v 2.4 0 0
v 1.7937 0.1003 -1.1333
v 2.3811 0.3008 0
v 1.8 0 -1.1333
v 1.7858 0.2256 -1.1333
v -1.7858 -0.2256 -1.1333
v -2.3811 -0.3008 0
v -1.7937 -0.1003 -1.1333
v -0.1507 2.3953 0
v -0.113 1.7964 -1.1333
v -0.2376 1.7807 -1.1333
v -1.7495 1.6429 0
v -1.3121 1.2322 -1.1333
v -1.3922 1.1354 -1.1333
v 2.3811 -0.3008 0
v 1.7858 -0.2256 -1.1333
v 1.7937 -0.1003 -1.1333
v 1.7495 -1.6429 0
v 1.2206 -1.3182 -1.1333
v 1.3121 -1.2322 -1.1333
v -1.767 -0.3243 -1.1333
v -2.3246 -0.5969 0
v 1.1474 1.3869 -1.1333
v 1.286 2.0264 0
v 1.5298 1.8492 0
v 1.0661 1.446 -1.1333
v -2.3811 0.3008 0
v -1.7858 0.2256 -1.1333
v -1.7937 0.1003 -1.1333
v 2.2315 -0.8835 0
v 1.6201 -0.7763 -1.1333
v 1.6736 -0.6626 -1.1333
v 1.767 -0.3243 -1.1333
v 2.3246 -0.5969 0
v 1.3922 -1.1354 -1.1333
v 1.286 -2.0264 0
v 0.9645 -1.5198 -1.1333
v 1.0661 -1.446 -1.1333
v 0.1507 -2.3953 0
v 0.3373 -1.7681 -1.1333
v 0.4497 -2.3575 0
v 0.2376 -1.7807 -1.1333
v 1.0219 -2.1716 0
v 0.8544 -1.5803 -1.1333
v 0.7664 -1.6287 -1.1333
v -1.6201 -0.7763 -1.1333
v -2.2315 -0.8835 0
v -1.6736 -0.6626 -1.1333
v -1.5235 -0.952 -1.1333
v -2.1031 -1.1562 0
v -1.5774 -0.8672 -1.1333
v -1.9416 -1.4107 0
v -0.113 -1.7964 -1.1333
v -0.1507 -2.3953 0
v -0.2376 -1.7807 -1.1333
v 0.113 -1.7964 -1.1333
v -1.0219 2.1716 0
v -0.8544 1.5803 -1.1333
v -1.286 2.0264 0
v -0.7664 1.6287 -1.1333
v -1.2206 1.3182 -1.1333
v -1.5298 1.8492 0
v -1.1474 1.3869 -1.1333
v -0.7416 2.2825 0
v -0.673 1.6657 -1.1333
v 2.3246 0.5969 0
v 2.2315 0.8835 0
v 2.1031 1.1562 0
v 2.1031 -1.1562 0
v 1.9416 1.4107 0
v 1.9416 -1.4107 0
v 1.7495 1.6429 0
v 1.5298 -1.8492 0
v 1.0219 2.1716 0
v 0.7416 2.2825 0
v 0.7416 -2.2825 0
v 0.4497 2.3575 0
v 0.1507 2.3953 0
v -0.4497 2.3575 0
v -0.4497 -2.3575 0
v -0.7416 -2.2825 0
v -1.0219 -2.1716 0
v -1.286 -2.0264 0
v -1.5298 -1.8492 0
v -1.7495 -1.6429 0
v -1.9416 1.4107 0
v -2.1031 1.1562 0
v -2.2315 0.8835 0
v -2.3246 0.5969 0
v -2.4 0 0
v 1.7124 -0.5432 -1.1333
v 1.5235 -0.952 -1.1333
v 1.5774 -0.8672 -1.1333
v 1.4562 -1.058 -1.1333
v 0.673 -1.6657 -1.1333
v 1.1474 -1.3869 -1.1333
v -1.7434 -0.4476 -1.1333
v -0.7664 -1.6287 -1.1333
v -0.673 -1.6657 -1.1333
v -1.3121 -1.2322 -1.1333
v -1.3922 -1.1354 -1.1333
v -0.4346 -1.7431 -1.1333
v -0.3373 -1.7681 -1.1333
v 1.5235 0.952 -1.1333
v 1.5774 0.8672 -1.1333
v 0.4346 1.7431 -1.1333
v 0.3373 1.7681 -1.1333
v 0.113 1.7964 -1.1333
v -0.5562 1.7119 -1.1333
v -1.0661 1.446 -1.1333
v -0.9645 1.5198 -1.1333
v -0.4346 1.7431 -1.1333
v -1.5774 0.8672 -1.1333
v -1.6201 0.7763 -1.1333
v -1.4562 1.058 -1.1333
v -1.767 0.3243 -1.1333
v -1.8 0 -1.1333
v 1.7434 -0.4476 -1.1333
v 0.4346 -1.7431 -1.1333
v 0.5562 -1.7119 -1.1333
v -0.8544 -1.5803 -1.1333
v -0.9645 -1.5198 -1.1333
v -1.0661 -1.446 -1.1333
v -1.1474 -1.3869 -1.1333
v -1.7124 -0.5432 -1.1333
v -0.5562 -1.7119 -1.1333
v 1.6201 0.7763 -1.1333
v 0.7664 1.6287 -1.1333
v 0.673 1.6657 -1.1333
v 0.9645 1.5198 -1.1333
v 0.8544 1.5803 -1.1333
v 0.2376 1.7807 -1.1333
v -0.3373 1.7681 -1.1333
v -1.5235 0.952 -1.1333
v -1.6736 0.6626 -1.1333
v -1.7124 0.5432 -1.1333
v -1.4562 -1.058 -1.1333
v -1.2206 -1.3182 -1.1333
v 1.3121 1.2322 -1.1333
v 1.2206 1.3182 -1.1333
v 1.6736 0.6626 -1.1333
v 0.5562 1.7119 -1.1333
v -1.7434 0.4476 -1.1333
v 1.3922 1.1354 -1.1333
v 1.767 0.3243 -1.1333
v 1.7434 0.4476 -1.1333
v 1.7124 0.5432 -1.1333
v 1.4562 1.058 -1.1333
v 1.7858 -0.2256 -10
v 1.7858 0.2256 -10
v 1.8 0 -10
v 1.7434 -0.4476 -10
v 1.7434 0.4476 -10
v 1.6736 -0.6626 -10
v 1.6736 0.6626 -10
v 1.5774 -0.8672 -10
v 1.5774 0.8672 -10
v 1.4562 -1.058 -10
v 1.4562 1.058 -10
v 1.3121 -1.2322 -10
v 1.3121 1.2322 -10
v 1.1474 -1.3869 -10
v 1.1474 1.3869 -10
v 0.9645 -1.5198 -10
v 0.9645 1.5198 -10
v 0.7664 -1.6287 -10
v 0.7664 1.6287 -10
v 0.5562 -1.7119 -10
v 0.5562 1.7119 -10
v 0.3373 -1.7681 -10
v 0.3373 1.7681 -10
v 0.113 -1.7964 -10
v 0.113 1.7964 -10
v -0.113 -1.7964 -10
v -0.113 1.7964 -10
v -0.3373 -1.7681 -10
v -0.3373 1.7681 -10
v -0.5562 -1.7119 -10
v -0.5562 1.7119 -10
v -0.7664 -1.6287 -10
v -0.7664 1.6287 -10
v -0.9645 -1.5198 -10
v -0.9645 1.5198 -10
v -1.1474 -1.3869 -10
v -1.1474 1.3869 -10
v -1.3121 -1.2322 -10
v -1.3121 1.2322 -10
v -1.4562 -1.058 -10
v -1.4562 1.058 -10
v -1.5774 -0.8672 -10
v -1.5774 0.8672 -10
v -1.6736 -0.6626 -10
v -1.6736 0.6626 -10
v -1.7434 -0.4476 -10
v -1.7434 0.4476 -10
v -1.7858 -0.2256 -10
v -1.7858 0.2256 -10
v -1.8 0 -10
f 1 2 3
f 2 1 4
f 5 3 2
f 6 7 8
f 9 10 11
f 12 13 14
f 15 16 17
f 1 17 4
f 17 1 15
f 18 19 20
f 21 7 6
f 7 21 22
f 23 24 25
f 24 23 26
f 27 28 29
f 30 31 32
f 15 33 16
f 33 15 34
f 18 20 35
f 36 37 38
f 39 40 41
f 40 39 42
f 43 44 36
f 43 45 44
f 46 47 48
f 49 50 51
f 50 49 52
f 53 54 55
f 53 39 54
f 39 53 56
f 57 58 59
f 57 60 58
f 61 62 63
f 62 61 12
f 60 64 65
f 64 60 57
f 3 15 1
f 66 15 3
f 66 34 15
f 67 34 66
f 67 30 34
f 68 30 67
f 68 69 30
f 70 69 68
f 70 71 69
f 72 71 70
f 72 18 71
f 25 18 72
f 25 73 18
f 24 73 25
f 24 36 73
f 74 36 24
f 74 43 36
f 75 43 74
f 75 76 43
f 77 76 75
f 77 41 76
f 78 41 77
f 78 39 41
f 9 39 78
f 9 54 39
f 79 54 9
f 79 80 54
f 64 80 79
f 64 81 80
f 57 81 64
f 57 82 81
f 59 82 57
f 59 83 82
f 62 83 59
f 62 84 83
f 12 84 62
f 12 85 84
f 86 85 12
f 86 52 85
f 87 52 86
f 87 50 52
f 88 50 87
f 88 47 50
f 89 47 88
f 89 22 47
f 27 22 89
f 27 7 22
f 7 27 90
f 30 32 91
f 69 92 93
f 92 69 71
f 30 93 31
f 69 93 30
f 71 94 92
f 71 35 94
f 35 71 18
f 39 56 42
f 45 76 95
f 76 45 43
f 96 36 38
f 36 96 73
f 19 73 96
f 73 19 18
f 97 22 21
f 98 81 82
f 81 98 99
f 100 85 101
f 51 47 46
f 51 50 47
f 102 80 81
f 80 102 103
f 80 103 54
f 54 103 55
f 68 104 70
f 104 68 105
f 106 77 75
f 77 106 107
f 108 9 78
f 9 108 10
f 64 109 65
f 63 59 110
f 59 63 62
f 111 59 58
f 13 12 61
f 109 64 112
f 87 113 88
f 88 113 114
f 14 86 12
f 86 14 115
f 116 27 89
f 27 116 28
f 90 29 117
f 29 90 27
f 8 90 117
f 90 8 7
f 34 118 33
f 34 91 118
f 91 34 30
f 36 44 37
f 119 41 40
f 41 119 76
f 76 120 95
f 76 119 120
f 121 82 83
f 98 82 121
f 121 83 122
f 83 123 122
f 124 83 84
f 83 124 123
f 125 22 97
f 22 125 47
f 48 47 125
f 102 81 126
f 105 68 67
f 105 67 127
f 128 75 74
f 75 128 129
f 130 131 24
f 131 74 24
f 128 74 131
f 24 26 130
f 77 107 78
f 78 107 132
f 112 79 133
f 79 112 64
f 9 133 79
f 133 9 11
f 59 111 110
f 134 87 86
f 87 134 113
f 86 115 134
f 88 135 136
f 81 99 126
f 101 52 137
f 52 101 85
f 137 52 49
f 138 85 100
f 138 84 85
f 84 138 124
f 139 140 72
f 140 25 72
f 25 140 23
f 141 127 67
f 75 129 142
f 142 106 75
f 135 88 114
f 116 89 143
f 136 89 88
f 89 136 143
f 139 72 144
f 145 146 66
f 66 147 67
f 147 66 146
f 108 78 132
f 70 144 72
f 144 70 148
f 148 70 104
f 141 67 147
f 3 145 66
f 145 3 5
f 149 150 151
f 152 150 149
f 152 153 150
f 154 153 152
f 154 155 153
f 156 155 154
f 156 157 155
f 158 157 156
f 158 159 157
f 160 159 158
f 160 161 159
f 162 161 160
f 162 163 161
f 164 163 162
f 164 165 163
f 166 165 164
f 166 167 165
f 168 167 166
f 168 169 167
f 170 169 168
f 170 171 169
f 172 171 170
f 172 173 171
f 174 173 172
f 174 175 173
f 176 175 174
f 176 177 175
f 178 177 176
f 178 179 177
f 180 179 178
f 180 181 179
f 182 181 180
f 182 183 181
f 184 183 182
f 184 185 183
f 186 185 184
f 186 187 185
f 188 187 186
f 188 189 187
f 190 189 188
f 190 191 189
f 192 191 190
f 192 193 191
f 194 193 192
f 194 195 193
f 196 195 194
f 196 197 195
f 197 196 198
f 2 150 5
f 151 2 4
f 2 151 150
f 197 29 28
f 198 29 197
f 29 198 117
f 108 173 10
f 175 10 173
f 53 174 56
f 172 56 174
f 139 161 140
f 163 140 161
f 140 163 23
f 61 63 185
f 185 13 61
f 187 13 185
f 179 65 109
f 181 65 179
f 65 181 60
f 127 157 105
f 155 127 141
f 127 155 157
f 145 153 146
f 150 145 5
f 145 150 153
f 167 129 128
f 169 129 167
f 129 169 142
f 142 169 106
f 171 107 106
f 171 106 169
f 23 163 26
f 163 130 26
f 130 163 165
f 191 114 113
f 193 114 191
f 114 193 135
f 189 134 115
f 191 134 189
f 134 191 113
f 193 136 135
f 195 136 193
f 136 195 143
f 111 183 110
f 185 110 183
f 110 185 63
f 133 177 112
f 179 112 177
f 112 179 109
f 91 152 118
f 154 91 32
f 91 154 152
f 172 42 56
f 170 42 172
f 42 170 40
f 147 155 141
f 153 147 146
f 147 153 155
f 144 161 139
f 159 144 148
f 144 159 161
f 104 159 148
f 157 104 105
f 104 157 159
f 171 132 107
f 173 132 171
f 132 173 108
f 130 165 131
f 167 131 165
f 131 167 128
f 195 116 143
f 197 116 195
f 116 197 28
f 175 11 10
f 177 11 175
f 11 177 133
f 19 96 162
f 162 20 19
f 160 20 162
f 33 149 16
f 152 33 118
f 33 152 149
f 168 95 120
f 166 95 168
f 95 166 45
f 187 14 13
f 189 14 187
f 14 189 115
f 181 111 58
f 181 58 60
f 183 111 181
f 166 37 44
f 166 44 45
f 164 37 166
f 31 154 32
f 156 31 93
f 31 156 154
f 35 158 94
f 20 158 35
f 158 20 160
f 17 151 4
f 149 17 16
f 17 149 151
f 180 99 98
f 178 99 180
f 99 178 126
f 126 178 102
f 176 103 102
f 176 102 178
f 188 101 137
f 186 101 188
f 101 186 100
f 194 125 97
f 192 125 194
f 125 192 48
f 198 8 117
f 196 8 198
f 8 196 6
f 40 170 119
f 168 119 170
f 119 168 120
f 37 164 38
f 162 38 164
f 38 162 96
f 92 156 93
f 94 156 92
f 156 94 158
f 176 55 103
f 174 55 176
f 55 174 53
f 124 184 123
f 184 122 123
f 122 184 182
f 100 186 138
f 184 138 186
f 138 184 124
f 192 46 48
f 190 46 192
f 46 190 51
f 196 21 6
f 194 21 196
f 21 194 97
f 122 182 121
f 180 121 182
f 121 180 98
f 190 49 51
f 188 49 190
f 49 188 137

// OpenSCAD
$fn = 50;


difference() {
	union() {
		translate(v = [0, 0, 0]) {
			rotate(a = [0, 0, 0]) {
				difference() {
					union() {
						translate(v = [0, 0, -1.7000000000]) {
							cylinder(h = 1.7000000000, r1 = 1.5000000000, r2 = 2.4000000000);
						}
						translate(v = [0, 0, -10.0000000000]) {
							cylinder(h = 10, r = 1.5000000000);
						}
						translate(v = [0, 0, -10.0000000000]) {
							cylinder(h = 10, r = 1.8000000000);
						}
						translate(v = [0, 0, -10.0000000000]) {
							cylinder(h = 10, r = 1.5000000000);
						}
					}
					union();
				}
			}
		}
	}
	union();
}
